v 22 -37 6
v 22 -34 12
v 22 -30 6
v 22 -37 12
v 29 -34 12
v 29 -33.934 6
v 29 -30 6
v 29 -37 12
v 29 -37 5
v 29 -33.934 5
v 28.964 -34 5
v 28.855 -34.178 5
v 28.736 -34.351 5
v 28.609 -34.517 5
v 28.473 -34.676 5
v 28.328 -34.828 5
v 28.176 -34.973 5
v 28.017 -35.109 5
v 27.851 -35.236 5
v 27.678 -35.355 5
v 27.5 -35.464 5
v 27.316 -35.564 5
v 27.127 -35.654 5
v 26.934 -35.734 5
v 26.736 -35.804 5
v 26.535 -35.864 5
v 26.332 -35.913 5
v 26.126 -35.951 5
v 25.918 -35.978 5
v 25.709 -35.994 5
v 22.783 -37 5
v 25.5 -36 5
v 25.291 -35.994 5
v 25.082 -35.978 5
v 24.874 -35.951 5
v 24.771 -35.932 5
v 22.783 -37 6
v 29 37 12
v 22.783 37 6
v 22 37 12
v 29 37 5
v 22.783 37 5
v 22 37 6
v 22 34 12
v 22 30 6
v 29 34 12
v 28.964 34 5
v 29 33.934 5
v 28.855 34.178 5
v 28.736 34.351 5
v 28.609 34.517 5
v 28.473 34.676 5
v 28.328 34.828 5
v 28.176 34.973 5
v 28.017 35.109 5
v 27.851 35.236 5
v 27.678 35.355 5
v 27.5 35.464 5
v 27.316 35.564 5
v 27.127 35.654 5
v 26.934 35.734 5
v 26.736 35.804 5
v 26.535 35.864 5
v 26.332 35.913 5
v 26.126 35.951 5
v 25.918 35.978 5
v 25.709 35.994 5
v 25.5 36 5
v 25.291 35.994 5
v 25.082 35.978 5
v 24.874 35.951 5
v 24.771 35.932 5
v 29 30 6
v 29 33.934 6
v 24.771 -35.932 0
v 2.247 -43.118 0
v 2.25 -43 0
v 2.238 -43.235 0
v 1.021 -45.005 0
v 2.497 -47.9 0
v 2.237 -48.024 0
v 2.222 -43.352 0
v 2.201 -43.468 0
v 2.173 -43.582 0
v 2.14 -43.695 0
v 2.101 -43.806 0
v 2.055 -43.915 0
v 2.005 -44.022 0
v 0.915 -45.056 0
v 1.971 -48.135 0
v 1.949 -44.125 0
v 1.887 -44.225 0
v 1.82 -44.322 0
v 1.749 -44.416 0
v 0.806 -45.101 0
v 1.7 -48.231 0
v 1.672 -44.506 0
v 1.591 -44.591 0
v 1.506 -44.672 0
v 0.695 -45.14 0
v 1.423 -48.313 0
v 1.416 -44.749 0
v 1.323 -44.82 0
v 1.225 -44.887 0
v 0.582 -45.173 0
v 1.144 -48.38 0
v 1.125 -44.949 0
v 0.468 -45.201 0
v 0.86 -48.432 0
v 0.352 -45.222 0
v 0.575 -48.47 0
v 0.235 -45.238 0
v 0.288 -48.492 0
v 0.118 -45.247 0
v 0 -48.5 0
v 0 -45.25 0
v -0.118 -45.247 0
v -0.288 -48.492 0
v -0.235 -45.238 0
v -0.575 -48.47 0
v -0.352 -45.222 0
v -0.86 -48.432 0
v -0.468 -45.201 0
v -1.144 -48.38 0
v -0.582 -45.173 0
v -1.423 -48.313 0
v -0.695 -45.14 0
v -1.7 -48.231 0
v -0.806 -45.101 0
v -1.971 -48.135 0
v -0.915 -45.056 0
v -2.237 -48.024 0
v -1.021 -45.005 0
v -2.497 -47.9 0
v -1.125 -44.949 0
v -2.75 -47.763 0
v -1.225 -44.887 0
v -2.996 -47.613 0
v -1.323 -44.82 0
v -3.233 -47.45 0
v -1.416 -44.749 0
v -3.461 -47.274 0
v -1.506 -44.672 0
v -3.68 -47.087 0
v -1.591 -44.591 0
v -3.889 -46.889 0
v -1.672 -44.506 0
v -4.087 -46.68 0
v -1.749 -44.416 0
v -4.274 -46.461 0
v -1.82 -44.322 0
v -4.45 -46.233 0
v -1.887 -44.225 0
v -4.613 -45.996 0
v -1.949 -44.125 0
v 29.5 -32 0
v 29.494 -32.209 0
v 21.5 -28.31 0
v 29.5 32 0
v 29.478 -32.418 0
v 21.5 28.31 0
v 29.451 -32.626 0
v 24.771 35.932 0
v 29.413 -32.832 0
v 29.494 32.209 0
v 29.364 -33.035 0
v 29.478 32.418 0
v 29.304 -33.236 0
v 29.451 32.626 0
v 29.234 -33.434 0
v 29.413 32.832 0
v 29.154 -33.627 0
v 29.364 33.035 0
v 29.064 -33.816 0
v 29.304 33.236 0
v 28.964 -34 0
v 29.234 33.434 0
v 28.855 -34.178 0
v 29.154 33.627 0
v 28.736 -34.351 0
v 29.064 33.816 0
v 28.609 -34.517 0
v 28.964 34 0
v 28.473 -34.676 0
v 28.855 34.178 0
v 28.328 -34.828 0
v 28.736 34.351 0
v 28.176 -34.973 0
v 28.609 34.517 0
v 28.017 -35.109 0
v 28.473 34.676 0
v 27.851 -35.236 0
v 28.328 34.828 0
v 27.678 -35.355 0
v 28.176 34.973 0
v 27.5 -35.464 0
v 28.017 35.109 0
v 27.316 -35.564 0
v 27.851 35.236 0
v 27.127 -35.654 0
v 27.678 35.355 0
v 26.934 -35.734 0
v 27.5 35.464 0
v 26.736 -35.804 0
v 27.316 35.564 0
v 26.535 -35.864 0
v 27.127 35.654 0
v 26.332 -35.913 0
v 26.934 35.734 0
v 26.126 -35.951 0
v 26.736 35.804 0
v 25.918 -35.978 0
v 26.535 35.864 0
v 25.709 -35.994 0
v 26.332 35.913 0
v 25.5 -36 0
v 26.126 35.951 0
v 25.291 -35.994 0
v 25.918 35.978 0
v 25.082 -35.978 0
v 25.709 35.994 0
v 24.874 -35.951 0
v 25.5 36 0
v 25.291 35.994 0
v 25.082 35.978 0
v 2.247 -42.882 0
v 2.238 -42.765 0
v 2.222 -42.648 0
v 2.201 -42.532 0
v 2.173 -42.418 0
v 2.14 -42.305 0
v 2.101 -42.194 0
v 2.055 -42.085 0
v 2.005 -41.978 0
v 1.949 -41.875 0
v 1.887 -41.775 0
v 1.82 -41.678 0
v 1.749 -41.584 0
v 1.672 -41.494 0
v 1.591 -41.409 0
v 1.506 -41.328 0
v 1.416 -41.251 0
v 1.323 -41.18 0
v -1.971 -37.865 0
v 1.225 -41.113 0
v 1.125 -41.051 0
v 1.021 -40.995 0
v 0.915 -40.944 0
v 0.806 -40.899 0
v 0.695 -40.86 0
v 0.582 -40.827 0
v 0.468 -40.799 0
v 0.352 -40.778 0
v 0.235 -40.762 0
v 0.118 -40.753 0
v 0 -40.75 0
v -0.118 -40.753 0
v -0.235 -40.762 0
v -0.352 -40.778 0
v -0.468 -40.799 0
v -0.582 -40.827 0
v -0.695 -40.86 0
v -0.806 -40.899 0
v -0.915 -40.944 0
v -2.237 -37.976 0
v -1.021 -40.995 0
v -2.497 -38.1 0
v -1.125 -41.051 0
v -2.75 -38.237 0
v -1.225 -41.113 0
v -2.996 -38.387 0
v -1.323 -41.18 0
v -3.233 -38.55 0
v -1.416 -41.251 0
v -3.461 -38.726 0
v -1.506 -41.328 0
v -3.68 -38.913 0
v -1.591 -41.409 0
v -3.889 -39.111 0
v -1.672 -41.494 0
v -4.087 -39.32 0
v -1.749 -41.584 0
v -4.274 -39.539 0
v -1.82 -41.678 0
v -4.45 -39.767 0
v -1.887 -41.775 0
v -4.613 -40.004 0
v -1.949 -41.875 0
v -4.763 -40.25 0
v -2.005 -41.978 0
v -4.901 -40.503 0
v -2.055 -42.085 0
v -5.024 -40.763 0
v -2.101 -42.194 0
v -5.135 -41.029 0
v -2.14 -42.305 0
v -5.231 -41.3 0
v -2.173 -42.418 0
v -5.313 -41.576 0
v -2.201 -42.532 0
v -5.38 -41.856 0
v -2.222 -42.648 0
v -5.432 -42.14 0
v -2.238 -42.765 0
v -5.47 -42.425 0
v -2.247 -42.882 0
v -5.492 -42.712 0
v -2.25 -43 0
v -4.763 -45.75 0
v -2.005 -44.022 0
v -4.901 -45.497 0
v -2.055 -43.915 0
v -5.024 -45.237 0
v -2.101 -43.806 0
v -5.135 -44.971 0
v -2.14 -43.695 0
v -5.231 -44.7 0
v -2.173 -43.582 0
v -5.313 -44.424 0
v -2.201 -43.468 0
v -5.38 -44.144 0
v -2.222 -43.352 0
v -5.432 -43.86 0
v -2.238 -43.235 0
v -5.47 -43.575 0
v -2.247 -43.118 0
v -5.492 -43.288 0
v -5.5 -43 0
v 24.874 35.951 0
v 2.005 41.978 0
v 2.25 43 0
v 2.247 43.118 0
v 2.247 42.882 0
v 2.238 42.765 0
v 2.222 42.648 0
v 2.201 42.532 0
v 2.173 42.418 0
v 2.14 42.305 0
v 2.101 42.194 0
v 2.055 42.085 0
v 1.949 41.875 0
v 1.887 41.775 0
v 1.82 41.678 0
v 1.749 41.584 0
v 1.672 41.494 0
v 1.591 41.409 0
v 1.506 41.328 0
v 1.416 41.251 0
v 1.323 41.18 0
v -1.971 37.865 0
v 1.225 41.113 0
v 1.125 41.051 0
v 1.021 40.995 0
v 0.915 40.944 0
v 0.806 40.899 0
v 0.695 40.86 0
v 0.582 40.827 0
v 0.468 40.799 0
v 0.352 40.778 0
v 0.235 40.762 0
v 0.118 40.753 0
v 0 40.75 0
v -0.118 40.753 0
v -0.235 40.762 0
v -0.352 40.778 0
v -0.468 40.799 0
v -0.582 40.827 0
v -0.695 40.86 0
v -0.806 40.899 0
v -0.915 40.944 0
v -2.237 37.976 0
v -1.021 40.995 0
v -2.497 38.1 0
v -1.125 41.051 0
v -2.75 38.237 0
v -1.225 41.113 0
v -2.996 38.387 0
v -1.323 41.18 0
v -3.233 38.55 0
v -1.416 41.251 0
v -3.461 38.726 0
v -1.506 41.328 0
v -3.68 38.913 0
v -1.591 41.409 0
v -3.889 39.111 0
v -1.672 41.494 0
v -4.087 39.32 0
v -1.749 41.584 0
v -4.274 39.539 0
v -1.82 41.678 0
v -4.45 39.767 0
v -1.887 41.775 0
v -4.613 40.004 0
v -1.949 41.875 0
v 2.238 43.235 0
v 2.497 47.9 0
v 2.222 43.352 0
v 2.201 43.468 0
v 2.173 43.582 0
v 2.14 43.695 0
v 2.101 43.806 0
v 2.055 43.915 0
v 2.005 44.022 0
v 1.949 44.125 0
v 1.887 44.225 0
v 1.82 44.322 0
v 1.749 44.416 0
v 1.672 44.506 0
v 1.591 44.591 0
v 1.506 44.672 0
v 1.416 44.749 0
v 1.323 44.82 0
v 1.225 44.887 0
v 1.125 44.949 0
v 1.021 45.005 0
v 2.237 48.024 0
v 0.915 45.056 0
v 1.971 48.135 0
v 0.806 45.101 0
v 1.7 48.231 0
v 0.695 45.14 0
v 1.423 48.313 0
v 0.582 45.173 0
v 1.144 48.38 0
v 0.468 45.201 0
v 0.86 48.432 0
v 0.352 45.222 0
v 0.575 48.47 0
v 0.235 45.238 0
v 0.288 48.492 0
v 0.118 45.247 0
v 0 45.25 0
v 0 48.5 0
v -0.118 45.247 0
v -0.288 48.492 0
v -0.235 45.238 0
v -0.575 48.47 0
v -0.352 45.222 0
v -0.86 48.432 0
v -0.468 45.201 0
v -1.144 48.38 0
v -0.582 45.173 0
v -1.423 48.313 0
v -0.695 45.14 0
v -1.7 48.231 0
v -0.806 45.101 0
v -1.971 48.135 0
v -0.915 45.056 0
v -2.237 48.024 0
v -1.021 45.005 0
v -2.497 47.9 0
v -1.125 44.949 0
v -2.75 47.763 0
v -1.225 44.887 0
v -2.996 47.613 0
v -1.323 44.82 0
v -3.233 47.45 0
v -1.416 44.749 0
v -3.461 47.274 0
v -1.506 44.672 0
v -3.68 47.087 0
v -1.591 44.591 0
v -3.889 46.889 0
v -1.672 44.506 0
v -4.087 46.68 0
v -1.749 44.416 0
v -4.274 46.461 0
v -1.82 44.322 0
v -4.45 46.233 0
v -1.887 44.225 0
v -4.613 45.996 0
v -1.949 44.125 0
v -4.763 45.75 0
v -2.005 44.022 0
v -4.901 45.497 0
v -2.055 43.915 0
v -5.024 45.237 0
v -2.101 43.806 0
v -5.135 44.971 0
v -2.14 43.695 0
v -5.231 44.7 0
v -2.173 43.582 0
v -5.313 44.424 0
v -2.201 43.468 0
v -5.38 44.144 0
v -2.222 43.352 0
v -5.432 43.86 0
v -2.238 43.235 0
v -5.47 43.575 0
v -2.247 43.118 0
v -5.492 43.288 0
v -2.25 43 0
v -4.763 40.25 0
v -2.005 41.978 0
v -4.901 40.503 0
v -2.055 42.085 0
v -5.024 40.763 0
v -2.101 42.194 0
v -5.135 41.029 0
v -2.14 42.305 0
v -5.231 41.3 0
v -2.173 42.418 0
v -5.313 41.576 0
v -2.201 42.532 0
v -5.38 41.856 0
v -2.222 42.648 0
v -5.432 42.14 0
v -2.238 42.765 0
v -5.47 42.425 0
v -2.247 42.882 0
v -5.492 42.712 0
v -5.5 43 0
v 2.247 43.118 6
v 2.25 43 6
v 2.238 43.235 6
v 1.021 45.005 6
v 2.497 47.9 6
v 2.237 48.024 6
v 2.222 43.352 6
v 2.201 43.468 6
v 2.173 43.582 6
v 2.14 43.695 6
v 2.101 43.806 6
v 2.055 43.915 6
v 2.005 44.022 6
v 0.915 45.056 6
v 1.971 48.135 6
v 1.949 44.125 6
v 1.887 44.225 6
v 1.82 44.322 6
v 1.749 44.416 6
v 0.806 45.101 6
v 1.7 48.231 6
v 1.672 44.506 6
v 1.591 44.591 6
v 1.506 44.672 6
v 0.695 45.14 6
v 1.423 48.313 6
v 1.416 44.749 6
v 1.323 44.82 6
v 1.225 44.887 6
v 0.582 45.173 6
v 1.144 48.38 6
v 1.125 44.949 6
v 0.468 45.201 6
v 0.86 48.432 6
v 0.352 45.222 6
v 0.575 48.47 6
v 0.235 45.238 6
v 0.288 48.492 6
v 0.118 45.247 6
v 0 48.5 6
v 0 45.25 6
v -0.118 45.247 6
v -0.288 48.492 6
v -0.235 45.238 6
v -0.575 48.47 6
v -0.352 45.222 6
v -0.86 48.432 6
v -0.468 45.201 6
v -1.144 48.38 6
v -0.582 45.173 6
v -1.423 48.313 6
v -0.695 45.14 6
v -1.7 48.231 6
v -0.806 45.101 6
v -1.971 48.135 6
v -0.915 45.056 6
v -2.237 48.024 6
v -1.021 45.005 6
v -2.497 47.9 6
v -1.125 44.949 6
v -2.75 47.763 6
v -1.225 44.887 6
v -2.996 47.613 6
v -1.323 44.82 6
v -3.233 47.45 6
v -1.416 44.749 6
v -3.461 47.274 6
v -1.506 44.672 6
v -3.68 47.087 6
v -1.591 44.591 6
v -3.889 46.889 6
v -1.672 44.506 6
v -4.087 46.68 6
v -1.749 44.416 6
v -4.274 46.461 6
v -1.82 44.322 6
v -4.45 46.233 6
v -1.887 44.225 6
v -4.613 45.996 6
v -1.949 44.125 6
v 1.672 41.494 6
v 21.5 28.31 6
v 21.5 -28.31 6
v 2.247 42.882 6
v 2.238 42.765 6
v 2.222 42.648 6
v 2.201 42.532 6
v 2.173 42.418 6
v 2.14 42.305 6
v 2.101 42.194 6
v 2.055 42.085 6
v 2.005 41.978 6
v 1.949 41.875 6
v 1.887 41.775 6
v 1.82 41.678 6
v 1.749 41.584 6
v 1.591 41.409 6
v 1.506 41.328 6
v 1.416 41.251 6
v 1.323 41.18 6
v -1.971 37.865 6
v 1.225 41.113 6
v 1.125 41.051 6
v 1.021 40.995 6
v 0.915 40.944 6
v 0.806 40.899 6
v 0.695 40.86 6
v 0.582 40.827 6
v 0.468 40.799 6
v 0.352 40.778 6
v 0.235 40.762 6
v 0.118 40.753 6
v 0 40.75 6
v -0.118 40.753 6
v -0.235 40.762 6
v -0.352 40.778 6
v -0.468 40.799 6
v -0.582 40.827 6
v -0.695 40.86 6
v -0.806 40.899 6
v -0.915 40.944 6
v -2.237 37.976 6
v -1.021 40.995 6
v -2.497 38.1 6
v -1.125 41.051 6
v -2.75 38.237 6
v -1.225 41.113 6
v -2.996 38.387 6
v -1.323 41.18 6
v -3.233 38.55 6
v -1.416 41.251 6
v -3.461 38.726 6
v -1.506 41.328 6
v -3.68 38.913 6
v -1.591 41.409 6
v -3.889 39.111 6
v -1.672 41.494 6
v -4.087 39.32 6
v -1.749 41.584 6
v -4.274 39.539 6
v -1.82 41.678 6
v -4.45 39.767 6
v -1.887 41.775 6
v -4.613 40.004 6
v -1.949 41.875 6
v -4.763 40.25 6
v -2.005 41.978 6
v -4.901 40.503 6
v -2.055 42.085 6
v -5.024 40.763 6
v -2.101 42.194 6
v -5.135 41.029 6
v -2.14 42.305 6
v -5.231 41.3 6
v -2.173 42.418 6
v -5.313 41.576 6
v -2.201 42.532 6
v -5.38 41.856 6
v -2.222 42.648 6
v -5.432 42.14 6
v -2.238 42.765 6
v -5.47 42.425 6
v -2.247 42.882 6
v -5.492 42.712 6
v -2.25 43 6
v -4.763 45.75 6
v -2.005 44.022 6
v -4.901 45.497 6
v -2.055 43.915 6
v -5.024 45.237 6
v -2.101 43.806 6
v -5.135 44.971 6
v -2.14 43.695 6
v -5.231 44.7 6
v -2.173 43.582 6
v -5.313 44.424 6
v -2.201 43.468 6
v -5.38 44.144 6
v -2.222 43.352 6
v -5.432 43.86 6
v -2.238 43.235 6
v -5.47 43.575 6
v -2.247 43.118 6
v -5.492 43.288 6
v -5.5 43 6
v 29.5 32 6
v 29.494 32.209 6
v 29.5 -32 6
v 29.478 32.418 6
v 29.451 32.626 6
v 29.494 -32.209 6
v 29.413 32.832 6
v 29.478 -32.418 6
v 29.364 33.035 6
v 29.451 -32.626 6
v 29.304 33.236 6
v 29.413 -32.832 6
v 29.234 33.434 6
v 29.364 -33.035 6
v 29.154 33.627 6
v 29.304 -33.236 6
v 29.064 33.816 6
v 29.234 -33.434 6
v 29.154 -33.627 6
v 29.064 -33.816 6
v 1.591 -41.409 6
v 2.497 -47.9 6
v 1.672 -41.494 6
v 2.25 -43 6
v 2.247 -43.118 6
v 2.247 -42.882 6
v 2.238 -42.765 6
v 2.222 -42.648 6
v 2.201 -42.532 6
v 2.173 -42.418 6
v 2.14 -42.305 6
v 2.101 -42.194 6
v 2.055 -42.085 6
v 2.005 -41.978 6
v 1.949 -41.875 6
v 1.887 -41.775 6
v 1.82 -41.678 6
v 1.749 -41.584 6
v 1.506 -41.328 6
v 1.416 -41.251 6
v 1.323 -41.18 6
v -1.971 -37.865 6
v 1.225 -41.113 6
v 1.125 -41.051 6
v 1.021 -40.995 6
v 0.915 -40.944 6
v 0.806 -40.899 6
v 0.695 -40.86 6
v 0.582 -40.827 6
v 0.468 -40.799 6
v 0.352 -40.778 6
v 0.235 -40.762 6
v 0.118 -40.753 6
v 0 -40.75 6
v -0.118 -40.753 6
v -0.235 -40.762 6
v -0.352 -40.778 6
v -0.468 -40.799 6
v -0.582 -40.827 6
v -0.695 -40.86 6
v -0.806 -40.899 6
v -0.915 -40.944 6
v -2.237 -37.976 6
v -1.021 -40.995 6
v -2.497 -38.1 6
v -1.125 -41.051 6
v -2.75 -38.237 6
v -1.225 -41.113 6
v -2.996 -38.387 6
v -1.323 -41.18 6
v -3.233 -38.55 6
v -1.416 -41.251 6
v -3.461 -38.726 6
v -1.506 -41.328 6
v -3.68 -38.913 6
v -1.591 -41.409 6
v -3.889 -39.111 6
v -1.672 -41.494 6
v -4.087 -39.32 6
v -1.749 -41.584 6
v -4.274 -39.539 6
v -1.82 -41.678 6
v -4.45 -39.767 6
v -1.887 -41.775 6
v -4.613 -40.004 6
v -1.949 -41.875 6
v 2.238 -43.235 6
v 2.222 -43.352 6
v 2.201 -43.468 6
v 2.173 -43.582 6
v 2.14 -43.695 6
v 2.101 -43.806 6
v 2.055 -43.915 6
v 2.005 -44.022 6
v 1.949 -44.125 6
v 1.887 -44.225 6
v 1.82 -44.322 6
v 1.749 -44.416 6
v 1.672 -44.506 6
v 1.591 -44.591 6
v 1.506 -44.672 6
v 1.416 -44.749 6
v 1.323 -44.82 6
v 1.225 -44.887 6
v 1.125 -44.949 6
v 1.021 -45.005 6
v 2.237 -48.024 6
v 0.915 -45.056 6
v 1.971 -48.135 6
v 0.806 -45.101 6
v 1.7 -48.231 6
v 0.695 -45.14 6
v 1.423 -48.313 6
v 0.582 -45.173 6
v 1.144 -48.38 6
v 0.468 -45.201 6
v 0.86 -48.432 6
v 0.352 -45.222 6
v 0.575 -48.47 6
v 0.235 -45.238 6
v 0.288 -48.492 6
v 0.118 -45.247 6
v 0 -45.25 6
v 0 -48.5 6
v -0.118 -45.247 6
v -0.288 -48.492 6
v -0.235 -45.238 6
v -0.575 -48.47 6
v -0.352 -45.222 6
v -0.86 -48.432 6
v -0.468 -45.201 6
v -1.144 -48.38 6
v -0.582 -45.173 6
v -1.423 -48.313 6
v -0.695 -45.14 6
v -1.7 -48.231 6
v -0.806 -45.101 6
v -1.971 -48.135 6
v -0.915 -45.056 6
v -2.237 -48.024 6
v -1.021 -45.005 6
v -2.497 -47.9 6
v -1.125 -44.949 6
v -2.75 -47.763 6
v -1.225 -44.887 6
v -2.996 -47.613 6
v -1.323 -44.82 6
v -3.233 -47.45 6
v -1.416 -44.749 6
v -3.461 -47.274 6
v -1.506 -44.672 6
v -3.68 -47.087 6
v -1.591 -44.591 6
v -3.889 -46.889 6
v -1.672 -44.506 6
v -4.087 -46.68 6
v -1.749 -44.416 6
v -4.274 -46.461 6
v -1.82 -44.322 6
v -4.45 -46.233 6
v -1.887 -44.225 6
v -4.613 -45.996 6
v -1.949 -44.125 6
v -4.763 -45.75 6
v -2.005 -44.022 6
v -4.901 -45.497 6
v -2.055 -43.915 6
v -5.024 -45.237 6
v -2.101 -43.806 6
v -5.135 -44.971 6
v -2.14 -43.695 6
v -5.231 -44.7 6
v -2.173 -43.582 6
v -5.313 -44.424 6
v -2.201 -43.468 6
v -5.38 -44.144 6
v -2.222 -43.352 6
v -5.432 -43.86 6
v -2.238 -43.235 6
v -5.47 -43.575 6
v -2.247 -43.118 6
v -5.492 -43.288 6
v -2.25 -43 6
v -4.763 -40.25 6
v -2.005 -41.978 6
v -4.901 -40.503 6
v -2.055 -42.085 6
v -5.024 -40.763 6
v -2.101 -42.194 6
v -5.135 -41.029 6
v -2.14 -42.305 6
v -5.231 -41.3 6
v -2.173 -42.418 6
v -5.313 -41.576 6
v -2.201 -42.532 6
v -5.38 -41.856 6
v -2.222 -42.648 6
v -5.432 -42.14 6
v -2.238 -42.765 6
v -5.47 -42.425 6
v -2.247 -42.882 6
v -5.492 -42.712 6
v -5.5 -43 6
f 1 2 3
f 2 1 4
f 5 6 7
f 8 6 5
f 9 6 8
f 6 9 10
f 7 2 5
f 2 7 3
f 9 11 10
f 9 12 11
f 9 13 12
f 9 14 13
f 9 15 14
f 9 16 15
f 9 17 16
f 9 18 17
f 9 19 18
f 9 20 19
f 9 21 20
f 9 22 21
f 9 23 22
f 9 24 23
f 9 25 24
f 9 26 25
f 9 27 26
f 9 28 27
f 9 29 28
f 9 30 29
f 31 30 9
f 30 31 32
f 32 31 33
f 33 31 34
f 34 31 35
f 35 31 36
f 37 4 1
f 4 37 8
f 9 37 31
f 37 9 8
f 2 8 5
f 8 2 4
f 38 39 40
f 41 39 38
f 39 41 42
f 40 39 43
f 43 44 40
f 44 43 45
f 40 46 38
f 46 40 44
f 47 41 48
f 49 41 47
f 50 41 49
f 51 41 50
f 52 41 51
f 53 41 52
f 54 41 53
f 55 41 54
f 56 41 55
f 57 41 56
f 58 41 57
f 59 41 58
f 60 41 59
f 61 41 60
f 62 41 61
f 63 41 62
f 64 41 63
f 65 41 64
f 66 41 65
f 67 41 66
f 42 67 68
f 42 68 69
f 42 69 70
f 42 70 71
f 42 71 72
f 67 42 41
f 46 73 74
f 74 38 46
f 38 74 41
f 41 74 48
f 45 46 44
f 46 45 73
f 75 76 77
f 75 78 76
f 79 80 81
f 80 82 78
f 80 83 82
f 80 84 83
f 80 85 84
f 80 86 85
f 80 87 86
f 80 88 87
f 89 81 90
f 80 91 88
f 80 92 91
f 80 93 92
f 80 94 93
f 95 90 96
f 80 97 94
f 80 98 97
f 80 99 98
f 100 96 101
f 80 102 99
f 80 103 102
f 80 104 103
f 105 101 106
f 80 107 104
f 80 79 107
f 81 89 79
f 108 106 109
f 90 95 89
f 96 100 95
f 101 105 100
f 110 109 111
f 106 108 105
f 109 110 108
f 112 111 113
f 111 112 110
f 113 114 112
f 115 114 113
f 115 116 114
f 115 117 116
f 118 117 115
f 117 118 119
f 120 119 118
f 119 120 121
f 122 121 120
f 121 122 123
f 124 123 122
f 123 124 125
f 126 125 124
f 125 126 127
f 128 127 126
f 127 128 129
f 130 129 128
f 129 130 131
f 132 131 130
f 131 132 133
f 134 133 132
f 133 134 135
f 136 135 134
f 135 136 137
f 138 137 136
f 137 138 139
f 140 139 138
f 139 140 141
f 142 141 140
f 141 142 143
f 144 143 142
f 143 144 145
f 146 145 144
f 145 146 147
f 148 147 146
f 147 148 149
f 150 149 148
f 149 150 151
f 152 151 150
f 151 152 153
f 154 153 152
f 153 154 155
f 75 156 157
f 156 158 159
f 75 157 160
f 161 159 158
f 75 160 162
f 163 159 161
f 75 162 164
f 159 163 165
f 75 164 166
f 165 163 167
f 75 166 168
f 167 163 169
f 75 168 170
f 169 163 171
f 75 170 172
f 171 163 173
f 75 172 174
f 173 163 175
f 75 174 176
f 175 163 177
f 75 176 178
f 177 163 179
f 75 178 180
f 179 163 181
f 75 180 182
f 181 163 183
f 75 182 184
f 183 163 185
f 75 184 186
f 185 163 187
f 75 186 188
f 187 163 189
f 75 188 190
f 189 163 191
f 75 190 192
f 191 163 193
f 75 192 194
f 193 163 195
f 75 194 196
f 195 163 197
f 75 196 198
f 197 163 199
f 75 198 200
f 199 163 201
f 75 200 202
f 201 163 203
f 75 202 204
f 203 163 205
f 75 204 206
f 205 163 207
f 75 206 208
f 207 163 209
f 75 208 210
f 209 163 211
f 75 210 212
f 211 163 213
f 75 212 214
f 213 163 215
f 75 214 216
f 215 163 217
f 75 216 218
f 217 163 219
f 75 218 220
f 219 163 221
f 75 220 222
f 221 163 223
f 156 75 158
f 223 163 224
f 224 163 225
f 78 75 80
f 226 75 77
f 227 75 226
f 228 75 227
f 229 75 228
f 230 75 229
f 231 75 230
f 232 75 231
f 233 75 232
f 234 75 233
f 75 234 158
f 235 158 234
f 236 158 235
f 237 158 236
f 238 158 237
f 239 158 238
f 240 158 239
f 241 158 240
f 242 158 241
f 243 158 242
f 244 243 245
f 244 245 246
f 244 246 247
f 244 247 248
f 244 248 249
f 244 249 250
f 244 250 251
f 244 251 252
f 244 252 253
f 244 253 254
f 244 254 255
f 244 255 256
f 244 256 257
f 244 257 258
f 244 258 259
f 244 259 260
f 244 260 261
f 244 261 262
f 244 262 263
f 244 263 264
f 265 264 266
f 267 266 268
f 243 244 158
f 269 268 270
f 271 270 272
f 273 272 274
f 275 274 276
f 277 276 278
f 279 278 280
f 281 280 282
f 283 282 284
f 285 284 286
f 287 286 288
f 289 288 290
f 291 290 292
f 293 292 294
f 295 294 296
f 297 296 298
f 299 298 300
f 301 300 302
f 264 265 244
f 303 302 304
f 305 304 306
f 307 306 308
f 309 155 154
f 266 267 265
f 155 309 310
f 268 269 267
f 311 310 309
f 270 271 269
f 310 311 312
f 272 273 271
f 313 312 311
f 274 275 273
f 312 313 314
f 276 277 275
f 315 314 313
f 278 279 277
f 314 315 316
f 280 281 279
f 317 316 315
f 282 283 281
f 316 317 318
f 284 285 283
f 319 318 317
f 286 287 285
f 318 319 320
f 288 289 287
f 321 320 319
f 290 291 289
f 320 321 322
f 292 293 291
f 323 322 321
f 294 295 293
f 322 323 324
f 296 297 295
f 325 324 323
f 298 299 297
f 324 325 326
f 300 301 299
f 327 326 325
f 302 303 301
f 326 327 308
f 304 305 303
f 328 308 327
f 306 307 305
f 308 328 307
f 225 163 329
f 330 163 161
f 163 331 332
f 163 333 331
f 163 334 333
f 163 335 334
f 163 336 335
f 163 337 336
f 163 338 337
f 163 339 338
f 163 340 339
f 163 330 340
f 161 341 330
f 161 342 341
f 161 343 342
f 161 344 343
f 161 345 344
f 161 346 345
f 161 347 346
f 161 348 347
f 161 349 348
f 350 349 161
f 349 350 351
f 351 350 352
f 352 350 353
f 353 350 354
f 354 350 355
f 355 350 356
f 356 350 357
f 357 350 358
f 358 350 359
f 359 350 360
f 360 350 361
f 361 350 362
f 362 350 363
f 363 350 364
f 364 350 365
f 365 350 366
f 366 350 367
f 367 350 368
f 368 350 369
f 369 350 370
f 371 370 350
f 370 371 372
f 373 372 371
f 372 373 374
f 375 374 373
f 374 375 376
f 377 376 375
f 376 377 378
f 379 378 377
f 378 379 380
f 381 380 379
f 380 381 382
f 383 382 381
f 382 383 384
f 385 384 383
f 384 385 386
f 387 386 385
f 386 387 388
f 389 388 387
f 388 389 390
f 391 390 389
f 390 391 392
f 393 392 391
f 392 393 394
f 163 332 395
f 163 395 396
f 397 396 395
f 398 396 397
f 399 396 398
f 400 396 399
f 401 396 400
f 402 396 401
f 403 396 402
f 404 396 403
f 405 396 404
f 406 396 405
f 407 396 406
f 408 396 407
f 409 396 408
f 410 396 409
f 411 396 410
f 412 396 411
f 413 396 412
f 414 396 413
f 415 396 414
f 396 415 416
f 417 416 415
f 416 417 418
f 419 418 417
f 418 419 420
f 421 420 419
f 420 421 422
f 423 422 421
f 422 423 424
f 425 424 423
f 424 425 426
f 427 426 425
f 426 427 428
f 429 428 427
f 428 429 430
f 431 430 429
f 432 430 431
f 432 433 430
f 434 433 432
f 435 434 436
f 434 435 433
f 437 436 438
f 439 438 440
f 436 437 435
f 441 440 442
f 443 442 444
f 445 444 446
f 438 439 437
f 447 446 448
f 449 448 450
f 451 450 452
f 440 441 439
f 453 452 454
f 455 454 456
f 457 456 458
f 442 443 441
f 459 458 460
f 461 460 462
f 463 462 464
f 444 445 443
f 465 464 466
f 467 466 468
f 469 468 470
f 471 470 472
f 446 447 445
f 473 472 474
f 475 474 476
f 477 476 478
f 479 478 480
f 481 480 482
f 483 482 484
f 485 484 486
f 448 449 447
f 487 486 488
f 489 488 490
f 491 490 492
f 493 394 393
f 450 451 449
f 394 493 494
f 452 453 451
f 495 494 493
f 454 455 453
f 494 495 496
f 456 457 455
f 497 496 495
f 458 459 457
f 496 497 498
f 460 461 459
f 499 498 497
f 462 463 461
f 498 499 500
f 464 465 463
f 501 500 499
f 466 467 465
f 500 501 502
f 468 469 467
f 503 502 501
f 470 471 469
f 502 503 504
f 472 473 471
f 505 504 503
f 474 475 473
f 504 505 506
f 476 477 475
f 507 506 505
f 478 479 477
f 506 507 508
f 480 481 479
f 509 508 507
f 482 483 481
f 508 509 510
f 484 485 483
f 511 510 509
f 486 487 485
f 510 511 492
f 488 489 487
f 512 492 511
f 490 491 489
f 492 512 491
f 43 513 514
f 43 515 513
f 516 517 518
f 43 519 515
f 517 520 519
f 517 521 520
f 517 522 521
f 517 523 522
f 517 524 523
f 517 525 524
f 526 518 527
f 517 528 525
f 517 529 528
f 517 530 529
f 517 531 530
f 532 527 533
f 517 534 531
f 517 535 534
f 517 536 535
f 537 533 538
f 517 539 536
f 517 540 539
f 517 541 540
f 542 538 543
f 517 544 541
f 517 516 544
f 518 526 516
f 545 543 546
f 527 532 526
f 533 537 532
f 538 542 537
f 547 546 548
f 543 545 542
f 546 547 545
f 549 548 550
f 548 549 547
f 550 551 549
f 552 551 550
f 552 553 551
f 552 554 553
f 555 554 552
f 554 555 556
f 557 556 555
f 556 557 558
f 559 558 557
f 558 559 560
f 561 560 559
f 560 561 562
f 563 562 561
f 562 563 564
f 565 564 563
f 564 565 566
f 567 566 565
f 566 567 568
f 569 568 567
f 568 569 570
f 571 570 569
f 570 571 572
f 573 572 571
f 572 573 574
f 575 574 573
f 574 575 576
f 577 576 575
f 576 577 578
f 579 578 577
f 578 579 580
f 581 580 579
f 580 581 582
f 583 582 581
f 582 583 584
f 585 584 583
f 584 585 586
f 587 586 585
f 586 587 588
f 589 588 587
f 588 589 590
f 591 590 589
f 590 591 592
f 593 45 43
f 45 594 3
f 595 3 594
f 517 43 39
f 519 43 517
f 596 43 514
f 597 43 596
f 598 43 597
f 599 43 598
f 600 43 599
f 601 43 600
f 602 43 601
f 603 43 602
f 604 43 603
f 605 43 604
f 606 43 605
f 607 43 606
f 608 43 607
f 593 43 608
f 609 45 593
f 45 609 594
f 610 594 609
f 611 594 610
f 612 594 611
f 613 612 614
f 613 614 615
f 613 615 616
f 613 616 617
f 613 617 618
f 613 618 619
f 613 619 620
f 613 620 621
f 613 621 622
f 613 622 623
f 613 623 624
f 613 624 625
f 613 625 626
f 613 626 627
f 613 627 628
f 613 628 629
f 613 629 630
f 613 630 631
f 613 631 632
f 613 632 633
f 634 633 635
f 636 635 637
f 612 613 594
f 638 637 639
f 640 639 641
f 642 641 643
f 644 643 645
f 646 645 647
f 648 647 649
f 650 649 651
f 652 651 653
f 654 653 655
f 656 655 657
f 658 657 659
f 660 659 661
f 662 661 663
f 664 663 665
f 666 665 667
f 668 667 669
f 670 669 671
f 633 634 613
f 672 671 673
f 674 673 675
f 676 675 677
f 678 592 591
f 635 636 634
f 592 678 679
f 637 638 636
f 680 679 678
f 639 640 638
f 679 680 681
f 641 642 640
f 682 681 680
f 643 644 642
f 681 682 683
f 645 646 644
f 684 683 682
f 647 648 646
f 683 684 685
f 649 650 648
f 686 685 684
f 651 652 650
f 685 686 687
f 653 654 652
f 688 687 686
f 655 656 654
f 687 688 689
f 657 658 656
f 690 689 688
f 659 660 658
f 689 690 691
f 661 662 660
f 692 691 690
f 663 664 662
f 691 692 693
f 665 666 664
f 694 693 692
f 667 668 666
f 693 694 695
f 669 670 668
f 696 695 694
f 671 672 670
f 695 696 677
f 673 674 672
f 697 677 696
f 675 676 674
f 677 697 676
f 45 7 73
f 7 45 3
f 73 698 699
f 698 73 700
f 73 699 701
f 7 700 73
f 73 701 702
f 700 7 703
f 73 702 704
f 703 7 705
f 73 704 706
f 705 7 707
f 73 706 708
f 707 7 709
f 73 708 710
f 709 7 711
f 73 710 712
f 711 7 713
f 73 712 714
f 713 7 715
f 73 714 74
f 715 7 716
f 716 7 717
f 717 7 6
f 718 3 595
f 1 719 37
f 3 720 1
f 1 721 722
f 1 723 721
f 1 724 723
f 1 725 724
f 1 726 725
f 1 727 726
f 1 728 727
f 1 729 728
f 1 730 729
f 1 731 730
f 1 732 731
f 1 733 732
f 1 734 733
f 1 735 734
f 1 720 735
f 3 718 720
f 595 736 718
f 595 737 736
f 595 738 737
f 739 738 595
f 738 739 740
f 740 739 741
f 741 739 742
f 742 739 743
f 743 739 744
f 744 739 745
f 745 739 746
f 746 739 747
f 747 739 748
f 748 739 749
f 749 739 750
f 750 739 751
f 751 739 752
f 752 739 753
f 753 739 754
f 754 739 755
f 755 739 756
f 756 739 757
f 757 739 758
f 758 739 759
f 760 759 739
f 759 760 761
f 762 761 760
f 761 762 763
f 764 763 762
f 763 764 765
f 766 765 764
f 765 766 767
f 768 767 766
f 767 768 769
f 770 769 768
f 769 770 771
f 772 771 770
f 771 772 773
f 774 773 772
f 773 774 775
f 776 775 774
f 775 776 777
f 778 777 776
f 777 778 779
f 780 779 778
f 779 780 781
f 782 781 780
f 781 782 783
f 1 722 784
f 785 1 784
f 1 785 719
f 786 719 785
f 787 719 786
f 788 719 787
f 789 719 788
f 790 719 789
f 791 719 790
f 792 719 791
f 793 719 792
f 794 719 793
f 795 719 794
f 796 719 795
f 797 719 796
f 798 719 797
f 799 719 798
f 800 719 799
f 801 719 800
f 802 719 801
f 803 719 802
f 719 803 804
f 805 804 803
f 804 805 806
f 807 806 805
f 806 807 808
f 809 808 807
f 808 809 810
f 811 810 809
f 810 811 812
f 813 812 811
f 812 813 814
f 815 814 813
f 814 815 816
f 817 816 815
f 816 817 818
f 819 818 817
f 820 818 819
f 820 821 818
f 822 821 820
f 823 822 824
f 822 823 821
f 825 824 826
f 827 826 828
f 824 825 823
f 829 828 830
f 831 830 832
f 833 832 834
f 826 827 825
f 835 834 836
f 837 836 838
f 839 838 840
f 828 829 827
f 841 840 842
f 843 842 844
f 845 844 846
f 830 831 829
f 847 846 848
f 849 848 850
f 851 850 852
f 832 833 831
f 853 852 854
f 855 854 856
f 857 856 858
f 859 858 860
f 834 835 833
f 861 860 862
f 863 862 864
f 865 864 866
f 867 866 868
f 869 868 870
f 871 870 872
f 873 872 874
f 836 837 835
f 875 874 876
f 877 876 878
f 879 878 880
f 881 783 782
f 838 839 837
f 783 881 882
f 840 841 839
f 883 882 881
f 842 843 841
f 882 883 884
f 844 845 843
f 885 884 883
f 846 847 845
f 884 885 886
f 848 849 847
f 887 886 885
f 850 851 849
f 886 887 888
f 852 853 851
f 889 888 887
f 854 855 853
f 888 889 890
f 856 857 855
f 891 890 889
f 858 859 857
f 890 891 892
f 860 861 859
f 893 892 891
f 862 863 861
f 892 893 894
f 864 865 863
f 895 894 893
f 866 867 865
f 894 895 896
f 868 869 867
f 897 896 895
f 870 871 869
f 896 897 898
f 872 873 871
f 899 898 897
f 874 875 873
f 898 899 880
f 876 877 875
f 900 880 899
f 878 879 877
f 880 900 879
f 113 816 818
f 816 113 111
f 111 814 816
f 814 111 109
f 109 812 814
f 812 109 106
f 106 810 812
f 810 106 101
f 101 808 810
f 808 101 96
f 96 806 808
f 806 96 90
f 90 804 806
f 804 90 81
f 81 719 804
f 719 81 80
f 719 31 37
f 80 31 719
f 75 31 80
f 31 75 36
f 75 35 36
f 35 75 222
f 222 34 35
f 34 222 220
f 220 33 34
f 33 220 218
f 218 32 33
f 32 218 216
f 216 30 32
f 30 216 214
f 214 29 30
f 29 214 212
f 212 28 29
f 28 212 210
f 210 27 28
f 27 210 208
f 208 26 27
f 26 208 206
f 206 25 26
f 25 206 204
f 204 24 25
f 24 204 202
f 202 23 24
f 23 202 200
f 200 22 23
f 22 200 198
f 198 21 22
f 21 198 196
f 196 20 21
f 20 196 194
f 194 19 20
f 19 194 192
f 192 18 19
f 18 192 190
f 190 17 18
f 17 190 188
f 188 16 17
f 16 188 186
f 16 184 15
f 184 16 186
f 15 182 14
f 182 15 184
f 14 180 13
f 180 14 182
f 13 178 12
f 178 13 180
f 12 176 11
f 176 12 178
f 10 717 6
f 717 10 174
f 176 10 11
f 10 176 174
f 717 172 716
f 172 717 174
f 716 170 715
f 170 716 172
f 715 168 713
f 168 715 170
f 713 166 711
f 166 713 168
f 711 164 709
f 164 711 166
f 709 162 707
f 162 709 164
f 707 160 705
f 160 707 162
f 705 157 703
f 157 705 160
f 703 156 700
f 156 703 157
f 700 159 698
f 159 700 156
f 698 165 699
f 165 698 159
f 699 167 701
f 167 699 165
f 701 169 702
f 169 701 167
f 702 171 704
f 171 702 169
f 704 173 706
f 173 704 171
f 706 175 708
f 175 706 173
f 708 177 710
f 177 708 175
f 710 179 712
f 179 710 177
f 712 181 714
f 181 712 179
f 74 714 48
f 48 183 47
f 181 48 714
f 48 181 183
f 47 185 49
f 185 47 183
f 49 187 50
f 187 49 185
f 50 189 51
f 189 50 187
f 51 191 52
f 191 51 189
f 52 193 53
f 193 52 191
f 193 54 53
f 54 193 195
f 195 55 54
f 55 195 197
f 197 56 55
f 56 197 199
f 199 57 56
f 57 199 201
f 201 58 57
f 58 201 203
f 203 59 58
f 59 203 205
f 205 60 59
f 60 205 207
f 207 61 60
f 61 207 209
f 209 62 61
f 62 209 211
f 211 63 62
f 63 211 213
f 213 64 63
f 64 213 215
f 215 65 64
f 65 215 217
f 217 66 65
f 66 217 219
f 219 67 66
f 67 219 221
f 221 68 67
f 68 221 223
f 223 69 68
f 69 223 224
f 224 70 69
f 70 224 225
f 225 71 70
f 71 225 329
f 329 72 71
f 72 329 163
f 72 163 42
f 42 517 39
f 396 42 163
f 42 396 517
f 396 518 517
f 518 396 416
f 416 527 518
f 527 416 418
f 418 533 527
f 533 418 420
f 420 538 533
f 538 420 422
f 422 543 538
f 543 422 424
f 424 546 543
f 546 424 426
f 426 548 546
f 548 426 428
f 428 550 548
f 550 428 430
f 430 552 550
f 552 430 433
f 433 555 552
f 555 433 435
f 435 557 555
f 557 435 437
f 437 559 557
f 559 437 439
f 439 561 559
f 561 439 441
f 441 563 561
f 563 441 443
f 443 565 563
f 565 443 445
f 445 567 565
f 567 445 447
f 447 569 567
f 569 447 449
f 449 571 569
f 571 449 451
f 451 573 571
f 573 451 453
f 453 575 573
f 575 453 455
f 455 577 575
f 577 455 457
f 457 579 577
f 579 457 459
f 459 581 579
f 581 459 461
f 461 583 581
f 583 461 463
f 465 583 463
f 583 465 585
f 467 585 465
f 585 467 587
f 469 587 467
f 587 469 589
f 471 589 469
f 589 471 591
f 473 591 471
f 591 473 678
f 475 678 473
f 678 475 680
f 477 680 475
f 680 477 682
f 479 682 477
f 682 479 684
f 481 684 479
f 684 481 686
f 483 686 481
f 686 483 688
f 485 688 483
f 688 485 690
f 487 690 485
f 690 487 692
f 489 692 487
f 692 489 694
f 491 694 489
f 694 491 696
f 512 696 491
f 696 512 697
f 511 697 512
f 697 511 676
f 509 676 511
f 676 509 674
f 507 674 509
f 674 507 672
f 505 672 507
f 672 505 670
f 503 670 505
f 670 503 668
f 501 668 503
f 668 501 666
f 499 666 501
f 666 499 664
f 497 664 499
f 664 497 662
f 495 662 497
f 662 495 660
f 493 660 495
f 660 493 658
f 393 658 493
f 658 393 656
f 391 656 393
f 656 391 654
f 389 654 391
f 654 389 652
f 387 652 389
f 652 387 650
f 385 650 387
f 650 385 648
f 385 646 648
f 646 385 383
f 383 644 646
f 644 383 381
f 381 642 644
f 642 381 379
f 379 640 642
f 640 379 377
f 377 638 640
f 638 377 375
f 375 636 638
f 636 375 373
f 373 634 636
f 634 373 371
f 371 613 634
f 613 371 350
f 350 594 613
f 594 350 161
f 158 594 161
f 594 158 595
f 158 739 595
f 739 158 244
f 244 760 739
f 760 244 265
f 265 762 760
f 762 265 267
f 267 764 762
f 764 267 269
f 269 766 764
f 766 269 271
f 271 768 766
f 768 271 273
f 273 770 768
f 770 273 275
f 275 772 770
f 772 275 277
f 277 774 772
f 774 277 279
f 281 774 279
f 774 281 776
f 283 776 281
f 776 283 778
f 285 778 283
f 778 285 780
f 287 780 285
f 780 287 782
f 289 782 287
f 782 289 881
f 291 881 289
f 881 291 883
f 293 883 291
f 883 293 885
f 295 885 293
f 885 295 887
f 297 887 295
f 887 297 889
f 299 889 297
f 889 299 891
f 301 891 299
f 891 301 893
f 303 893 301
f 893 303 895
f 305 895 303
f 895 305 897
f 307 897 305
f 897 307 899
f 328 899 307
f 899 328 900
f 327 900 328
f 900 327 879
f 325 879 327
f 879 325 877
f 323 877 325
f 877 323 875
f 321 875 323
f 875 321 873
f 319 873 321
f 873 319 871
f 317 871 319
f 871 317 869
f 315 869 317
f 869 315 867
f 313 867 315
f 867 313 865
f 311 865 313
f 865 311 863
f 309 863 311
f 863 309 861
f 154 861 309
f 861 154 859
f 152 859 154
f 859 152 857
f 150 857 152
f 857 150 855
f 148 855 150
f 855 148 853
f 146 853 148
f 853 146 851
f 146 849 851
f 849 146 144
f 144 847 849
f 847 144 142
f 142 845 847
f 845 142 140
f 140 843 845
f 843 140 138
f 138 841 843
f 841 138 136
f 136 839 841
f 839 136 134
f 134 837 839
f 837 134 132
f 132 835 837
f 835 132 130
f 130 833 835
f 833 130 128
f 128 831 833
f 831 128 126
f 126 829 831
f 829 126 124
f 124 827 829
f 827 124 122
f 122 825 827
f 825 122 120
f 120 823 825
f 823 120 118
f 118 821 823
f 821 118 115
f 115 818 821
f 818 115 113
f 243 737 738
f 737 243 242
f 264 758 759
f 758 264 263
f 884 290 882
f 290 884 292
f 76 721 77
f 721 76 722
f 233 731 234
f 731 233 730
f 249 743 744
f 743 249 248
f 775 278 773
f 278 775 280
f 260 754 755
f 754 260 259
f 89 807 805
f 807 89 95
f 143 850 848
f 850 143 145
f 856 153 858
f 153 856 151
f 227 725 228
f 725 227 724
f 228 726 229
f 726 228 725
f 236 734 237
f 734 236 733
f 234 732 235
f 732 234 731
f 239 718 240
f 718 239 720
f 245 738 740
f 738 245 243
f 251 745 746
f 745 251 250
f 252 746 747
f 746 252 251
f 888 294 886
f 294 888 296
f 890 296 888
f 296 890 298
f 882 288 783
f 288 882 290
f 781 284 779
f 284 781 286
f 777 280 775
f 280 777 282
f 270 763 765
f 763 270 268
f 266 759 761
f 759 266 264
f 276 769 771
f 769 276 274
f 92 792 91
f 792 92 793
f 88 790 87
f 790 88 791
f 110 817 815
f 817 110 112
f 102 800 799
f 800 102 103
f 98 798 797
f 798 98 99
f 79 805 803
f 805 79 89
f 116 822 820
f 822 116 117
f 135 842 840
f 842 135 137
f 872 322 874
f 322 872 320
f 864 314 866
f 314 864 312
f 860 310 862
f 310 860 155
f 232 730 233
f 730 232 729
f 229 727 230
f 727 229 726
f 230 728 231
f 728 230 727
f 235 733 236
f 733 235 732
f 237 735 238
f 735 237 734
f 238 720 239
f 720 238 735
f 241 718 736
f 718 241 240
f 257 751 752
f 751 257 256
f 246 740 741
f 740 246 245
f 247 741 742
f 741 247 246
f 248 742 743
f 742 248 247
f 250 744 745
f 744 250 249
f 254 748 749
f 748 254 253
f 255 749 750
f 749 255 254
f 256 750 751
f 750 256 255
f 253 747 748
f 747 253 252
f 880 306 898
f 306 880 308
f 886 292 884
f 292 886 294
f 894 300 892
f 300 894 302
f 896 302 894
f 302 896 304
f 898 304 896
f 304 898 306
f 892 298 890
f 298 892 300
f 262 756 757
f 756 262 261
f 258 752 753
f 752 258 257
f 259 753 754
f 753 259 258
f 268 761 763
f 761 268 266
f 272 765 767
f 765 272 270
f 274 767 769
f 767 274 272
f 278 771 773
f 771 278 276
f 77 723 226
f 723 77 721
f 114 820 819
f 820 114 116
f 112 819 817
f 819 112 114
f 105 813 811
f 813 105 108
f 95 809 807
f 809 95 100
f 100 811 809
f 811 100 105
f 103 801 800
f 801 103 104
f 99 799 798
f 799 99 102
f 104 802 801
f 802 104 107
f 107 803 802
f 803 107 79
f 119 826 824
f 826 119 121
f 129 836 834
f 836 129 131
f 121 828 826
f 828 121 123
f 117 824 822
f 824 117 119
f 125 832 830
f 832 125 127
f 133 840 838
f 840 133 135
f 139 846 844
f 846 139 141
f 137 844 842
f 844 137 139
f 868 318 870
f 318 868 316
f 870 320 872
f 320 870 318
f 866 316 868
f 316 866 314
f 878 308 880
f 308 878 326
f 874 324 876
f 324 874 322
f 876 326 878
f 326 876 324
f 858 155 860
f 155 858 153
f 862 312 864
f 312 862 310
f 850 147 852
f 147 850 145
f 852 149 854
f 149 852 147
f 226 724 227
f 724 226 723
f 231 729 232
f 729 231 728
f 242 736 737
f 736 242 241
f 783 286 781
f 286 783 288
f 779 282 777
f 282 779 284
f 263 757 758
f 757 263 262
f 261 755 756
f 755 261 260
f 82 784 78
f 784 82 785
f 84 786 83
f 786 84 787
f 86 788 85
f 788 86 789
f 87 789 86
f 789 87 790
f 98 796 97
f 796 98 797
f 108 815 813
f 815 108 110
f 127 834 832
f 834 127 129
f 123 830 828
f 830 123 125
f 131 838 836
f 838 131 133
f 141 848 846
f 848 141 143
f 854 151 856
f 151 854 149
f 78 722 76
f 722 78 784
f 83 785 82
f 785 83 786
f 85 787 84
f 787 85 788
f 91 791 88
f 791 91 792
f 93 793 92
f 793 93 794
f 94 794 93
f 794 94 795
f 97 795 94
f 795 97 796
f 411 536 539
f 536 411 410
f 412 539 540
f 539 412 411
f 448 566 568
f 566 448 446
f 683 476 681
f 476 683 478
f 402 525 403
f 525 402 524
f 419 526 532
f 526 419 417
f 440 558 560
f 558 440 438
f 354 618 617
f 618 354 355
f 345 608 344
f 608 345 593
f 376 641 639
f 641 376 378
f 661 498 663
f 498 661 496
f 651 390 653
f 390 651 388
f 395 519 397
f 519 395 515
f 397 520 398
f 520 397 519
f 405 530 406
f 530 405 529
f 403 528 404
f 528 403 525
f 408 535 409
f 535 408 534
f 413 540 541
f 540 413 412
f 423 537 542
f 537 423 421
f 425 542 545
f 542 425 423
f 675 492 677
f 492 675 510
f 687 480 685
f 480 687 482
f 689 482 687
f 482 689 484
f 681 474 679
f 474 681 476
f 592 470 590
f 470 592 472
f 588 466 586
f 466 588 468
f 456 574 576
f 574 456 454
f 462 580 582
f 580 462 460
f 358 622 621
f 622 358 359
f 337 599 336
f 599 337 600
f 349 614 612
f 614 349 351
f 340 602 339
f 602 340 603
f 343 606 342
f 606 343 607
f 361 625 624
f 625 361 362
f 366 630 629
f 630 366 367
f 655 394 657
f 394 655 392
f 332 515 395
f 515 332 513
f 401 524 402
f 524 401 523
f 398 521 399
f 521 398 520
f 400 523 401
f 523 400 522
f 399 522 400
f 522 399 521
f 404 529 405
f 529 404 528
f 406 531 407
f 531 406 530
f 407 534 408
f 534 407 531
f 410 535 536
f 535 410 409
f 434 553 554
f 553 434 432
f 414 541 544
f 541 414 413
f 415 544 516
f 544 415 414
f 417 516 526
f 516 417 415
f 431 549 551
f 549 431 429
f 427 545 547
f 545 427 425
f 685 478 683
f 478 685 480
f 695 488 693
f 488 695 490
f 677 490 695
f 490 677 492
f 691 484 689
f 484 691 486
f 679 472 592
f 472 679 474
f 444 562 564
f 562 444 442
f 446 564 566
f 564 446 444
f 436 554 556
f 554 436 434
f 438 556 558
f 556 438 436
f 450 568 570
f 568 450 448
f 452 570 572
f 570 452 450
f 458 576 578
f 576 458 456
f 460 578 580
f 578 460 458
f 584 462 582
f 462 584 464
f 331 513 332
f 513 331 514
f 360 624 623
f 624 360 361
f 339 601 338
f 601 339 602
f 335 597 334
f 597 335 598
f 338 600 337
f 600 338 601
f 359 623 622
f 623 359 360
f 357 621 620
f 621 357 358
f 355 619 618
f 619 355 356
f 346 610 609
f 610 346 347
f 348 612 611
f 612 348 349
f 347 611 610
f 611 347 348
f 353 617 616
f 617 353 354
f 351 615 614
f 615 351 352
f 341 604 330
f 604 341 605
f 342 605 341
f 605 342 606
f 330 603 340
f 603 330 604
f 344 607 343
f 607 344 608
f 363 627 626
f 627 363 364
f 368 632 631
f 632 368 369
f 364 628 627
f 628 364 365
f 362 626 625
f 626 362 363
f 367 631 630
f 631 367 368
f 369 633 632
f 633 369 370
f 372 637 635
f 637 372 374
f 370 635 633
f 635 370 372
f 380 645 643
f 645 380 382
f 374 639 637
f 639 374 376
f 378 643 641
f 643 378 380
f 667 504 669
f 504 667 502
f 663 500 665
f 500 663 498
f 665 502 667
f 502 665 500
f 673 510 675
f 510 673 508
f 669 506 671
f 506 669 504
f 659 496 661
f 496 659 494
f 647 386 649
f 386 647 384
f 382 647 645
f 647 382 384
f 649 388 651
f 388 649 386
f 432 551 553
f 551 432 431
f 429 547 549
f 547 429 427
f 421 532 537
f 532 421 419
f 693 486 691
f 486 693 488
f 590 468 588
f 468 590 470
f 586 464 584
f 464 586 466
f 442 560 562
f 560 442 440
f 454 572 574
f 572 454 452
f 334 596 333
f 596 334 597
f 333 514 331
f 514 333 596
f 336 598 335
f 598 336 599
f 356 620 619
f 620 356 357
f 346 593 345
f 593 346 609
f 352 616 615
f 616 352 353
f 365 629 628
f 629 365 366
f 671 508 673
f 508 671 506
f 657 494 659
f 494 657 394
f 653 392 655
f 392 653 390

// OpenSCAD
// Rev C | CoreS3 and Makita 5 Ah + ADP05 | mm
// Look from the cap into the tube: battery on right (+X), ADP05 on left (-X).
// Print two copies of "saddle". Face the small locating fingers inward
// toward the battery at both ends. Mirror axially by turning the rear part
// 180 degrees around X. Retain with M4 rods, washers and nuts.
// Use thin removable pads at the two face contacts. Adjust nuts so pads
// just touch battery shell. Keep contact away from switches and latch.
// Existing Rev B front plate has different rod holes. Use "front" for Rev C.
// "rear" is the optional rear guide ring. "gauge" is the diameter coupon.
// "assembly" is a preview. Hardware, plug, cap and device are omitted.
// Rev C fit is provisional. Check contact locations and rod clearance with
// the actual pack before final assembly. Do not force the pack through.

part = "saddle";
bore_min = 103;
diametral_gap = 1.0;
length_axial = 40;
land_width = 8;
ring_wall = 6;
rib_width = 6;
deck_thickness = 6;
standoff_height = 4;
boss_diameter = 9;
screw_clearance = 3.4;
lead_chamfer = 0.7;


battery_length = 113;
rod_y = 43;
rod_hole = 4.5;
ear_radius = 5.5;
saddle_thickness = 6;
finger_length = 6;
finger_inner_y = 34; // Photo estimate, measured from tube axis
finger_width = 3;
finger_x = 22; // Contacts at battery side only
finger_depth_x = 7;
front_cable_gap = 30;
end_pad = 1;
rear_guide_gap = 8;

$fn = 120;
r = (bore_min - diametral_gap) / 2;
body_length = length_axial - standoff_height;
hole_centers = [for (x = [-15, 15], y = [-31, 31]) [x, y]];
rod_positions = [-rod_y, rod_y];
pack_front = -front_cable_gap;
pack_back = pack_front - battery_length;
rear_start = pack_back - end_pad - saddle_thickness - rear_guide_gap - land_width;

assert(part == "saddle" || part == "front" || part == "rear" ||
       part == "gauge" || part == "assembly", "Unknown part.");
assert(rod_y + ear_radius < r - lead_chamfer, "Rod ears exceed fit diameter.");
assert(norm([finger_x + finger_depth_x, finger_inner_y + finger_width]) < r,
       "Locating fingers exceed fit diameter.");
assert(rod_y - rod_hole / 2 > 31 + screw_clearance / 2,
       "Check DIN mounting hole clearance.");

echo(guide_od = 2 * r, rod_spacing = 2 * rod_y,
     assembly_length_excluding_device_and_hardware = length_axial - rear_start);

module rod_bores(start, depth) {
    for (y = rod_positions)
        translate([0, y, start])
            cylinder(d = rod_hole, h = depth);
}

module end_land() {
    cylinder(h = lead_chamfer, r1 = r - lead_chamfer, r2 = r);
    translate([0, 0, lead_chamfer])
        cylinder(h = land_width - 2 * lead_chamfer, r = r);
    translate([0, 0, land_width - lead_chamfer])
        cylinder(h = lead_chamfer, r1 = r, r2 = r - lead_chamfer);
}

module annular_land() {
    difference() {
        end_land();
        translate([0, 0, -1])
            cylinder(h = land_width + 2, r = r - ring_wall);
    }
}

module rails() {
    for (angle = [45, 135, 225, 315])
        rotate([0, 0, angle])
            translate([r - ring_wall - 1, -rib_width / 2, land_width - 1])
                cube([ring_wall - 0.3, rib_width, body_length - 2 * land_width + 2]);
}

module insert() {
    difference() {
        union() {
            rear_guide();
            translate([0, 0, body_length - land_width])
                annular_land();
            rails();
            // Clipped to the front chamfer. Overlaps the front support ring.
            intersection() {
                translate([0, 0, body_length - land_width])
                    end_land();
                translate([0, 0, body_length - deck_thickness])
                    cylinder(h = deck_thickness, r = r);
            }
            for (p = hole_centers)
                translate([p[0], p[1], body_length - 0.2])
                    cylinder(h = standoff_height + 0.2, d = boss_diameter);
        }
        for (p = hole_centers)
            translate([p[0], p[1], body_length - land_width - 1])
                cylinder(h = land_width + standoff_height + 2, d = screw_clearance);
        rod_bores(-1, body_length + 2);
        // Cable pass-through. Fit edge protection if cables cross this opening.
        translate([-12, -9, body_length - deck_thickness - 1])
            cube([24, 18, deck_thickness + 2]);
    }
}


module rear_guide() {
    difference() {
        union() {
            annular_land();
            for (y = rod_positions)
                translate([0, y, 0])
                    cylinder(h = land_width, r = ear_radius);
        }
        rod_bores(-1, land_width + 2);
    }
}


// The two arms leave the ADP05 face and the battery indicator area open.
module saddle() {
    difference() {
        union() {
            linear_extrude(height = saddle_thickness)
                union() {
                hull() for (side = [-1, 1])
                    translate([finger_x + finger_depth_x / 2,
                               side * (finger_inner_y - 2)]) circle(r = 4);
                for (side = [-1, 1])
                    hull() {
                        translate([0, side * rod_y]) circle(r = ear_radius);
                        translate([finger_x + finger_depth_x / 2,
                                   side * (finger_inner_y - 3)])
                            circle(r = 4);
                    }
                }
            for (side = [-1, 1])
                hull() {
                    translate([finger_x, side > 0 ? finger_inner_y :
                               -finger_inner_y - finger_width, saddle_thickness - 1])
                        cube([finger_depth_x, finger_width, finger_length + 1]);
                    translate([finger_x, side > 0 ? finger_inner_y - 4 :
                               -finger_inner_y - finger_width, saddle_thickness - 1])
                        cube([finger_depth_x, finger_width + 4, 1]);
                }
        }
        rod_bores(-1, saddle_thickness + 2);
    }
}

module assembly() {
    color("steelblue") insert();
    color("steelblue") translate([0, 0, rear_start]) rear_guide();
    color("orange") translate([0, 0, pack_back - end_pad - saddle_thickness]) saddle();
    color("orange") translate([0, 0, pack_front + end_pad + saddle_thickness])
        rotate([180, 0, 0]) saddle();
    for (y = rod_positions)
        color("silver") translate([0, y, rear_start])
            cylinder(d = 4, h = body_length - rear_start);
    // Rough end-view silhouette for orientation only.
    %translate([0, 0, pack_back])
        linear_extrude(height = battery_length)
            hull() for (x = [3, 29], y = [-28, 28])
                translate([x, y]) circle(r = 5);
    %translate([0, 0, pack_front - 102])
        linear_extrude(height = 102)
            hull() for (x = [-34, -7], y = [-27, 27])
                translate([x, y]) circle(r = 5);
}

if (part == "saddle") saddle();
if (part == "front") insert();
if (part == "rear") rear_guide();
if (part == "gauge") annular_land();
if (part == "assembly") assembly();
